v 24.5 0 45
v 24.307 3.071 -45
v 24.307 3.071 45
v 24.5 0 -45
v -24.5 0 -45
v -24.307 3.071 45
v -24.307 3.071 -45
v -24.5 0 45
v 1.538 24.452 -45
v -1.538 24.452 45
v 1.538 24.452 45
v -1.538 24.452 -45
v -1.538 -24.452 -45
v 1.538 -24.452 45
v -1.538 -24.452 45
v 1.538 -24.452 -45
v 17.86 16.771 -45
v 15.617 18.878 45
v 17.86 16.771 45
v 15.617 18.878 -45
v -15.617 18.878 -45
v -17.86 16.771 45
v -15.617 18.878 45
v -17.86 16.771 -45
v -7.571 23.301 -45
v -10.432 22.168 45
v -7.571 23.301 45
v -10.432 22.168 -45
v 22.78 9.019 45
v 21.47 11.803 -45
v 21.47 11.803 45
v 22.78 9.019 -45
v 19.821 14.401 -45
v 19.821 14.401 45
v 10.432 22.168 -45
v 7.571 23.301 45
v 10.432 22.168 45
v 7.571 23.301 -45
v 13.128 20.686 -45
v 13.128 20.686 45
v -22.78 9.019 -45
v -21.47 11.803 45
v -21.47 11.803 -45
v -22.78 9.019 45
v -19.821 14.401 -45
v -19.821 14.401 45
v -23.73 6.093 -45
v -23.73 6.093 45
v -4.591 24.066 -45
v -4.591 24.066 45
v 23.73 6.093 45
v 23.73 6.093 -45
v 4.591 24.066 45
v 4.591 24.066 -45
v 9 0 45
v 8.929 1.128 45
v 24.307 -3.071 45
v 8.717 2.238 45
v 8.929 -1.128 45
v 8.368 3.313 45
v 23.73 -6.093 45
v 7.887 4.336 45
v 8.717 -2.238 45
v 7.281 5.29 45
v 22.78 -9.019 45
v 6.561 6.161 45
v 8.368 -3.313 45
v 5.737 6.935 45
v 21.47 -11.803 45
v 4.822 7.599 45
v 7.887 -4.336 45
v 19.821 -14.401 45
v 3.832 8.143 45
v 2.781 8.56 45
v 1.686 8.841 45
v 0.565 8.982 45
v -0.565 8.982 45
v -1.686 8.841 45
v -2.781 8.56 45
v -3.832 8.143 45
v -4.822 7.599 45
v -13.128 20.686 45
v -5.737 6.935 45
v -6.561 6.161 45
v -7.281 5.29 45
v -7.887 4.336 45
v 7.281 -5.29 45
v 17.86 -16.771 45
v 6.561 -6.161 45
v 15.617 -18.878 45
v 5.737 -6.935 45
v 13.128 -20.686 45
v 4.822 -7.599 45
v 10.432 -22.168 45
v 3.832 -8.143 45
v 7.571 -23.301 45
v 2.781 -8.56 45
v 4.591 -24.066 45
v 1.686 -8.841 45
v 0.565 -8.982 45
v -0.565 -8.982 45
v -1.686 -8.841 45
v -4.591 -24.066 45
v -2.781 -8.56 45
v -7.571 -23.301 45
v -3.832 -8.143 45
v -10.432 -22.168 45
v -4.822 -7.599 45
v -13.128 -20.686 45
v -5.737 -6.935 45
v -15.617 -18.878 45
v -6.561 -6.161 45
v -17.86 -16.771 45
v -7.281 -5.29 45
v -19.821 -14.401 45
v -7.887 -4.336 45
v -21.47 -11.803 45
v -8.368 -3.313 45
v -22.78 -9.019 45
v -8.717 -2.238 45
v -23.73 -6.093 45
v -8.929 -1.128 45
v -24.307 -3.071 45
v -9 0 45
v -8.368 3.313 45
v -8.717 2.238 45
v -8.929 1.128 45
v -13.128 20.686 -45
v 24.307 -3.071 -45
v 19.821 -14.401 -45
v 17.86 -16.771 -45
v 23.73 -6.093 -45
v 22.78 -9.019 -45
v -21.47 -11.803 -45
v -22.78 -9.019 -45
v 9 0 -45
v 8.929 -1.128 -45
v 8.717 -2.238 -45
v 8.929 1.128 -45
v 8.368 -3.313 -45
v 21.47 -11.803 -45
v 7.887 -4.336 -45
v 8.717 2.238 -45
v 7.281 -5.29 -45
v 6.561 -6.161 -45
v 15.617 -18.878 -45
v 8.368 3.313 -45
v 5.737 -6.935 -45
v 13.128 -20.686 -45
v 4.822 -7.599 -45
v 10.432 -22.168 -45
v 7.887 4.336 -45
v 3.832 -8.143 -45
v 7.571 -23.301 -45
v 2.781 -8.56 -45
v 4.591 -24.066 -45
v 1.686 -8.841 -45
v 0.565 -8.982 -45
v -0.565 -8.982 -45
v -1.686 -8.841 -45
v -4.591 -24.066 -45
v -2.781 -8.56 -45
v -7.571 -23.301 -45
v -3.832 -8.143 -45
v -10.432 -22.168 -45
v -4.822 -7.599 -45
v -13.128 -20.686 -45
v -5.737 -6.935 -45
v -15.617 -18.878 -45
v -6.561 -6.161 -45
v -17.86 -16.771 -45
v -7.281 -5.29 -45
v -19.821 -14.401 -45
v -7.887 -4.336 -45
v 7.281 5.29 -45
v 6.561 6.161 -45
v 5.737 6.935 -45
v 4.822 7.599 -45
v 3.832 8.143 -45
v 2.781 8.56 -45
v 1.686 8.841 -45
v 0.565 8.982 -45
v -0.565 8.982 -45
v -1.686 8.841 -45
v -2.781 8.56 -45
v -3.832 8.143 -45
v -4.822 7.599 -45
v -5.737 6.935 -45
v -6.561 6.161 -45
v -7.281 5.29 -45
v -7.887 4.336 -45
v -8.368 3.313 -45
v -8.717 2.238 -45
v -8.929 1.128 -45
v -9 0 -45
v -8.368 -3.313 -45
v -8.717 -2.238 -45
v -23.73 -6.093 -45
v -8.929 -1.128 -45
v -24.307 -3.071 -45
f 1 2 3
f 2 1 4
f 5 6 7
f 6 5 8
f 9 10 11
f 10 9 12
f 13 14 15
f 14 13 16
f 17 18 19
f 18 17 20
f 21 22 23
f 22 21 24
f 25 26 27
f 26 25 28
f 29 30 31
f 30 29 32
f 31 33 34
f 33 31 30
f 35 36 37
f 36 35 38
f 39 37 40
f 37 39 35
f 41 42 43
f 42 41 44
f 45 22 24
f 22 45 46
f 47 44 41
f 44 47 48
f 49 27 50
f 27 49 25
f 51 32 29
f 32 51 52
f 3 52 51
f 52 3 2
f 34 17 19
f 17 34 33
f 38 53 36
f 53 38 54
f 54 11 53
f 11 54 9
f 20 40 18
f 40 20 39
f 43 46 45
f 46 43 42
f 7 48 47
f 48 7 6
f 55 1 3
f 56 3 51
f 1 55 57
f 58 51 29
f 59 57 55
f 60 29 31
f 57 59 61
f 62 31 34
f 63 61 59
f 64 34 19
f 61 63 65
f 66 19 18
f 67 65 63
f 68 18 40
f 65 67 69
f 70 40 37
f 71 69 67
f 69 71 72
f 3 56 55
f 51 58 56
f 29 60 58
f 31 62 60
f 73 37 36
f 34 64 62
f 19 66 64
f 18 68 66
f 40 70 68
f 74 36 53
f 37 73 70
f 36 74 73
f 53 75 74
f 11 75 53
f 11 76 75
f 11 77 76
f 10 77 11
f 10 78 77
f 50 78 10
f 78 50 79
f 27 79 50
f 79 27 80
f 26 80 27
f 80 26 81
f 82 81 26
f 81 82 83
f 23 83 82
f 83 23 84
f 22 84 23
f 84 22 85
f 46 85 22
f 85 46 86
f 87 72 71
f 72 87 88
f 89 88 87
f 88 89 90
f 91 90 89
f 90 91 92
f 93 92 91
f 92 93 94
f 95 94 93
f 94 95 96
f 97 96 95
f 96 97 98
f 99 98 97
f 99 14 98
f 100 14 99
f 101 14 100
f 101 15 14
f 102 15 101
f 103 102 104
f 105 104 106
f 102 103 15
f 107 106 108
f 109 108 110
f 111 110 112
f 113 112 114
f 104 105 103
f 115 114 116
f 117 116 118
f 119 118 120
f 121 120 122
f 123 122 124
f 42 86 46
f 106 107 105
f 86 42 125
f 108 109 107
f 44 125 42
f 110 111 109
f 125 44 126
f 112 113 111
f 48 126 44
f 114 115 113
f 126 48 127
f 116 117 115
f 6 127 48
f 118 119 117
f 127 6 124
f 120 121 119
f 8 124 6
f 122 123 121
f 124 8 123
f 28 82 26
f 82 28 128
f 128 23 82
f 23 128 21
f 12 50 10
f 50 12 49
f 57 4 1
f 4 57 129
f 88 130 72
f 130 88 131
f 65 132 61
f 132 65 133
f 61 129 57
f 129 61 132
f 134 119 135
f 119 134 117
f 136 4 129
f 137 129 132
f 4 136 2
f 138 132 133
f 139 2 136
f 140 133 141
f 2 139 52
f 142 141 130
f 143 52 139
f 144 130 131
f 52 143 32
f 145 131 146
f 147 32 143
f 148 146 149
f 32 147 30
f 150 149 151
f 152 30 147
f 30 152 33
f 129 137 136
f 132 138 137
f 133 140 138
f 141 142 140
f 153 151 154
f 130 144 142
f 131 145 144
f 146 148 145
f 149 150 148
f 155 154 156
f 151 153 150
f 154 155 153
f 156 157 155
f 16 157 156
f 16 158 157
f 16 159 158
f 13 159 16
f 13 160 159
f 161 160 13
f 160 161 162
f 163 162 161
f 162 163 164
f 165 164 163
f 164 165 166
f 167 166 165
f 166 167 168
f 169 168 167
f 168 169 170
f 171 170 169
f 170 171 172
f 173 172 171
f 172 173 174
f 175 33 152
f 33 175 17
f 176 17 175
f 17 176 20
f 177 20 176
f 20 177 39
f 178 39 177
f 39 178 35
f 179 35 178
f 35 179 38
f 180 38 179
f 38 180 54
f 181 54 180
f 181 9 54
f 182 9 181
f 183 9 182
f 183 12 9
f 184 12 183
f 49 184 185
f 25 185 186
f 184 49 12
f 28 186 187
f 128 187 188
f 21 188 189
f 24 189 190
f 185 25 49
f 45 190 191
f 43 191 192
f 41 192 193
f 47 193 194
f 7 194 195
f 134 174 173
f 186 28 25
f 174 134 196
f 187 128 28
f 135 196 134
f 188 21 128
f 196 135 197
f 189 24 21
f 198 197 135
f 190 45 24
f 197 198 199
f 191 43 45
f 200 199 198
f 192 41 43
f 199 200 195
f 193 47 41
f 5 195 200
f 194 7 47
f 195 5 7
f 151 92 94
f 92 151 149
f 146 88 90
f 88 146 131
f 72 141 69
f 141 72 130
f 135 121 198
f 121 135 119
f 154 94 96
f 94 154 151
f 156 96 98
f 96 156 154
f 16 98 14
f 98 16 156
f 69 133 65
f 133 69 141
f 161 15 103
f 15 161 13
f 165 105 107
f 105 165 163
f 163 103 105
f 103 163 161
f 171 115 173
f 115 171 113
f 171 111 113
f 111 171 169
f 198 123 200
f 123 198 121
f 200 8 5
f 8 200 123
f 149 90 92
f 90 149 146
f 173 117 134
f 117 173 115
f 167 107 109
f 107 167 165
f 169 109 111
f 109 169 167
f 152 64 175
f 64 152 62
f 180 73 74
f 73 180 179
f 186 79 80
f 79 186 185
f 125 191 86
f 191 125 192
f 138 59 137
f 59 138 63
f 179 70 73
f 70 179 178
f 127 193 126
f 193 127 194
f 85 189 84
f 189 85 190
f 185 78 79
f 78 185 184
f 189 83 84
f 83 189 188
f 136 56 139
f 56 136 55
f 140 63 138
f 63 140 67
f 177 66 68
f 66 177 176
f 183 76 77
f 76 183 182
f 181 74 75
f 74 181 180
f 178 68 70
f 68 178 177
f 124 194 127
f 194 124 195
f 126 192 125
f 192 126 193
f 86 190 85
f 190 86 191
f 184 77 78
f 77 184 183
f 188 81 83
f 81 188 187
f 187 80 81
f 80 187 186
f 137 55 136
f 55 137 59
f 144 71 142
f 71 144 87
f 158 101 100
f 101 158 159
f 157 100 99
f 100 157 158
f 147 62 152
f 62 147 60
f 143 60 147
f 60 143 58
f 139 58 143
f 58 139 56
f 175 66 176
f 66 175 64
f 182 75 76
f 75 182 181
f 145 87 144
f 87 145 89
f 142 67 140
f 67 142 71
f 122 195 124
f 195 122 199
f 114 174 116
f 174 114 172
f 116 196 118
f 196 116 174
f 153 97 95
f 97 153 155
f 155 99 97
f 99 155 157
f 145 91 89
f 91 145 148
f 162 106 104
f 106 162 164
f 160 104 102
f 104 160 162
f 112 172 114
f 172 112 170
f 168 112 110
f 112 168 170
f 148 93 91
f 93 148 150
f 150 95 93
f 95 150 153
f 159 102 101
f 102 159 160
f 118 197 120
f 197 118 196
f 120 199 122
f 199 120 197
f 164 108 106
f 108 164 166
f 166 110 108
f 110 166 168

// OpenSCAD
$fn = 50;


difference() {
	union() {
		translate(v = [0, 0, -45.0000000000]) {
			cylinder(h = 90, r = 24.5000000000);
		}
	}
	union() {
		translate(v = [0, 0, -100.0000000000]) {
			cylinder(h = 200, r = 9);
		}
	}
}
